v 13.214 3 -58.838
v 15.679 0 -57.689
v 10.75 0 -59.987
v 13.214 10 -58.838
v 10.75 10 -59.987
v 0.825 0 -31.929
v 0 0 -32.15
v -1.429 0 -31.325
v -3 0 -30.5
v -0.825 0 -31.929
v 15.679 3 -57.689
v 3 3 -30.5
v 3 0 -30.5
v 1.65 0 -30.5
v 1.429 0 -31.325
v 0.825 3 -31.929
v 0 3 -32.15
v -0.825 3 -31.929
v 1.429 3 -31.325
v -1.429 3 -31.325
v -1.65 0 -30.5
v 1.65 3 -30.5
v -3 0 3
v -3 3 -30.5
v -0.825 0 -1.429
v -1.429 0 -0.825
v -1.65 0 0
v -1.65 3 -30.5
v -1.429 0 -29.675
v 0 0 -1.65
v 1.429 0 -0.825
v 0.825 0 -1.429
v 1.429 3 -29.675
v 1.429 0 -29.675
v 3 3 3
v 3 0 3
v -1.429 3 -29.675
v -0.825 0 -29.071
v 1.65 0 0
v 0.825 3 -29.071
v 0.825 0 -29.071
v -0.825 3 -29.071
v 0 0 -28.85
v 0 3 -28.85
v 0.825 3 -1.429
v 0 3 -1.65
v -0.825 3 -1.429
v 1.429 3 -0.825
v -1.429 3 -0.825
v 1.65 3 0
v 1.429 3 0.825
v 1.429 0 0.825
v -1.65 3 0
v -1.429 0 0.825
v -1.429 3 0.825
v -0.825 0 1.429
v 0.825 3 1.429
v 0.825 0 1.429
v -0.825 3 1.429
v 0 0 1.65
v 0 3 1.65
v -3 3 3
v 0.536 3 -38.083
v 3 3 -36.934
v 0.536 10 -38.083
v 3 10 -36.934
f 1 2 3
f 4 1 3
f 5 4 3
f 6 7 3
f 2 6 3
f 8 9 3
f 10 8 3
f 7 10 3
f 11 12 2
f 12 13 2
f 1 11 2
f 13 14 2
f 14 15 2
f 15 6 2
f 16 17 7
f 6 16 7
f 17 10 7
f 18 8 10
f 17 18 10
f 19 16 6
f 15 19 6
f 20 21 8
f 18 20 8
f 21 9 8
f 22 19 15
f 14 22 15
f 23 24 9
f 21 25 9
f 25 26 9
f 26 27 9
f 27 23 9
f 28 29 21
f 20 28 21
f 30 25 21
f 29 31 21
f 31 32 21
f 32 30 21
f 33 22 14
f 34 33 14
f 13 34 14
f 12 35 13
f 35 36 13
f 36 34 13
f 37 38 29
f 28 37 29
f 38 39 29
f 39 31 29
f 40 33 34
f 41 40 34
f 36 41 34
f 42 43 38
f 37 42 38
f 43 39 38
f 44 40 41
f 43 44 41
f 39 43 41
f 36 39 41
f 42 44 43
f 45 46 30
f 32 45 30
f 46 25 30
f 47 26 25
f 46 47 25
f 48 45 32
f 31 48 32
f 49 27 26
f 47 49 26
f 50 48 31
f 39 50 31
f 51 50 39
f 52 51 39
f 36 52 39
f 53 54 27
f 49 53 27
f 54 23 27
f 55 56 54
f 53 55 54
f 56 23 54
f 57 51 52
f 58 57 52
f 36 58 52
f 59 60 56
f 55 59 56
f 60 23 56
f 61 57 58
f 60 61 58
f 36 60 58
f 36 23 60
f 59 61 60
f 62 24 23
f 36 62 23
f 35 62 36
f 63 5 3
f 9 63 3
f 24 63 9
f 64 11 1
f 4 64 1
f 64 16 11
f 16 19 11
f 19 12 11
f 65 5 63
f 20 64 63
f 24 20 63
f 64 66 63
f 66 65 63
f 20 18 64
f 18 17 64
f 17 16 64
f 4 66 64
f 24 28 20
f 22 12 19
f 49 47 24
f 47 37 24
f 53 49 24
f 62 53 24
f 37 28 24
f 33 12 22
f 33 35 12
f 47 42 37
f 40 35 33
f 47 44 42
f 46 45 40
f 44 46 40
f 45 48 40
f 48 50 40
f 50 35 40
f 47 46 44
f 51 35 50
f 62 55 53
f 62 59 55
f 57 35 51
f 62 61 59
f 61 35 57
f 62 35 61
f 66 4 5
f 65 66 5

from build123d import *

# Parameters (mm, degrees)
SKETCH1_R           = 1.65
BOSS_EXTRUDE1_DEPTH = 3
BOSS_EXTRUDE2_DEPTH = 10


with BuildPart() as part:
    # Sketch1 → Boss-Extrude1 (new body)
    with BuildSketch(Plane(origin=(0, 0, 0), x_dir=(1, 0, 0), z_dir=(0, 1, 0))):
        Polygon((-3, 30.5), (-3, -3), (3, -3), (3, 30.5), (15.678547852, 57.689233611), (13.214366438, 58.838300276), (3, 36.933520762), (0.535818585, 38.082587426), align=None)
        with Locations((0, 30.5)):
            Circle(SKETCH1_R, mode=Mode.SUBTRACT)
        Circle(SKETCH1_R, mode=Mode.SUBTRACT)
    extrude(amount=BOSS_EXTRUDE1_DEPTH)

    # Sketch1<4> → Boss-Extrude2 (add)
    with BuildSketch(Plane(origin=(0, 0, 0), x_dir=(1, 0, 0), z_dir=(0, 1, 0))):
        Polygon((10.750185023, 59.98736694), (0.535818585, 38.082587426), (3, 36.933520762), (13.214366438, 58.838300276), align=None)
    extrude(amount=BOSS_EXTRUDE2_DEPTH)


solid = part.part
